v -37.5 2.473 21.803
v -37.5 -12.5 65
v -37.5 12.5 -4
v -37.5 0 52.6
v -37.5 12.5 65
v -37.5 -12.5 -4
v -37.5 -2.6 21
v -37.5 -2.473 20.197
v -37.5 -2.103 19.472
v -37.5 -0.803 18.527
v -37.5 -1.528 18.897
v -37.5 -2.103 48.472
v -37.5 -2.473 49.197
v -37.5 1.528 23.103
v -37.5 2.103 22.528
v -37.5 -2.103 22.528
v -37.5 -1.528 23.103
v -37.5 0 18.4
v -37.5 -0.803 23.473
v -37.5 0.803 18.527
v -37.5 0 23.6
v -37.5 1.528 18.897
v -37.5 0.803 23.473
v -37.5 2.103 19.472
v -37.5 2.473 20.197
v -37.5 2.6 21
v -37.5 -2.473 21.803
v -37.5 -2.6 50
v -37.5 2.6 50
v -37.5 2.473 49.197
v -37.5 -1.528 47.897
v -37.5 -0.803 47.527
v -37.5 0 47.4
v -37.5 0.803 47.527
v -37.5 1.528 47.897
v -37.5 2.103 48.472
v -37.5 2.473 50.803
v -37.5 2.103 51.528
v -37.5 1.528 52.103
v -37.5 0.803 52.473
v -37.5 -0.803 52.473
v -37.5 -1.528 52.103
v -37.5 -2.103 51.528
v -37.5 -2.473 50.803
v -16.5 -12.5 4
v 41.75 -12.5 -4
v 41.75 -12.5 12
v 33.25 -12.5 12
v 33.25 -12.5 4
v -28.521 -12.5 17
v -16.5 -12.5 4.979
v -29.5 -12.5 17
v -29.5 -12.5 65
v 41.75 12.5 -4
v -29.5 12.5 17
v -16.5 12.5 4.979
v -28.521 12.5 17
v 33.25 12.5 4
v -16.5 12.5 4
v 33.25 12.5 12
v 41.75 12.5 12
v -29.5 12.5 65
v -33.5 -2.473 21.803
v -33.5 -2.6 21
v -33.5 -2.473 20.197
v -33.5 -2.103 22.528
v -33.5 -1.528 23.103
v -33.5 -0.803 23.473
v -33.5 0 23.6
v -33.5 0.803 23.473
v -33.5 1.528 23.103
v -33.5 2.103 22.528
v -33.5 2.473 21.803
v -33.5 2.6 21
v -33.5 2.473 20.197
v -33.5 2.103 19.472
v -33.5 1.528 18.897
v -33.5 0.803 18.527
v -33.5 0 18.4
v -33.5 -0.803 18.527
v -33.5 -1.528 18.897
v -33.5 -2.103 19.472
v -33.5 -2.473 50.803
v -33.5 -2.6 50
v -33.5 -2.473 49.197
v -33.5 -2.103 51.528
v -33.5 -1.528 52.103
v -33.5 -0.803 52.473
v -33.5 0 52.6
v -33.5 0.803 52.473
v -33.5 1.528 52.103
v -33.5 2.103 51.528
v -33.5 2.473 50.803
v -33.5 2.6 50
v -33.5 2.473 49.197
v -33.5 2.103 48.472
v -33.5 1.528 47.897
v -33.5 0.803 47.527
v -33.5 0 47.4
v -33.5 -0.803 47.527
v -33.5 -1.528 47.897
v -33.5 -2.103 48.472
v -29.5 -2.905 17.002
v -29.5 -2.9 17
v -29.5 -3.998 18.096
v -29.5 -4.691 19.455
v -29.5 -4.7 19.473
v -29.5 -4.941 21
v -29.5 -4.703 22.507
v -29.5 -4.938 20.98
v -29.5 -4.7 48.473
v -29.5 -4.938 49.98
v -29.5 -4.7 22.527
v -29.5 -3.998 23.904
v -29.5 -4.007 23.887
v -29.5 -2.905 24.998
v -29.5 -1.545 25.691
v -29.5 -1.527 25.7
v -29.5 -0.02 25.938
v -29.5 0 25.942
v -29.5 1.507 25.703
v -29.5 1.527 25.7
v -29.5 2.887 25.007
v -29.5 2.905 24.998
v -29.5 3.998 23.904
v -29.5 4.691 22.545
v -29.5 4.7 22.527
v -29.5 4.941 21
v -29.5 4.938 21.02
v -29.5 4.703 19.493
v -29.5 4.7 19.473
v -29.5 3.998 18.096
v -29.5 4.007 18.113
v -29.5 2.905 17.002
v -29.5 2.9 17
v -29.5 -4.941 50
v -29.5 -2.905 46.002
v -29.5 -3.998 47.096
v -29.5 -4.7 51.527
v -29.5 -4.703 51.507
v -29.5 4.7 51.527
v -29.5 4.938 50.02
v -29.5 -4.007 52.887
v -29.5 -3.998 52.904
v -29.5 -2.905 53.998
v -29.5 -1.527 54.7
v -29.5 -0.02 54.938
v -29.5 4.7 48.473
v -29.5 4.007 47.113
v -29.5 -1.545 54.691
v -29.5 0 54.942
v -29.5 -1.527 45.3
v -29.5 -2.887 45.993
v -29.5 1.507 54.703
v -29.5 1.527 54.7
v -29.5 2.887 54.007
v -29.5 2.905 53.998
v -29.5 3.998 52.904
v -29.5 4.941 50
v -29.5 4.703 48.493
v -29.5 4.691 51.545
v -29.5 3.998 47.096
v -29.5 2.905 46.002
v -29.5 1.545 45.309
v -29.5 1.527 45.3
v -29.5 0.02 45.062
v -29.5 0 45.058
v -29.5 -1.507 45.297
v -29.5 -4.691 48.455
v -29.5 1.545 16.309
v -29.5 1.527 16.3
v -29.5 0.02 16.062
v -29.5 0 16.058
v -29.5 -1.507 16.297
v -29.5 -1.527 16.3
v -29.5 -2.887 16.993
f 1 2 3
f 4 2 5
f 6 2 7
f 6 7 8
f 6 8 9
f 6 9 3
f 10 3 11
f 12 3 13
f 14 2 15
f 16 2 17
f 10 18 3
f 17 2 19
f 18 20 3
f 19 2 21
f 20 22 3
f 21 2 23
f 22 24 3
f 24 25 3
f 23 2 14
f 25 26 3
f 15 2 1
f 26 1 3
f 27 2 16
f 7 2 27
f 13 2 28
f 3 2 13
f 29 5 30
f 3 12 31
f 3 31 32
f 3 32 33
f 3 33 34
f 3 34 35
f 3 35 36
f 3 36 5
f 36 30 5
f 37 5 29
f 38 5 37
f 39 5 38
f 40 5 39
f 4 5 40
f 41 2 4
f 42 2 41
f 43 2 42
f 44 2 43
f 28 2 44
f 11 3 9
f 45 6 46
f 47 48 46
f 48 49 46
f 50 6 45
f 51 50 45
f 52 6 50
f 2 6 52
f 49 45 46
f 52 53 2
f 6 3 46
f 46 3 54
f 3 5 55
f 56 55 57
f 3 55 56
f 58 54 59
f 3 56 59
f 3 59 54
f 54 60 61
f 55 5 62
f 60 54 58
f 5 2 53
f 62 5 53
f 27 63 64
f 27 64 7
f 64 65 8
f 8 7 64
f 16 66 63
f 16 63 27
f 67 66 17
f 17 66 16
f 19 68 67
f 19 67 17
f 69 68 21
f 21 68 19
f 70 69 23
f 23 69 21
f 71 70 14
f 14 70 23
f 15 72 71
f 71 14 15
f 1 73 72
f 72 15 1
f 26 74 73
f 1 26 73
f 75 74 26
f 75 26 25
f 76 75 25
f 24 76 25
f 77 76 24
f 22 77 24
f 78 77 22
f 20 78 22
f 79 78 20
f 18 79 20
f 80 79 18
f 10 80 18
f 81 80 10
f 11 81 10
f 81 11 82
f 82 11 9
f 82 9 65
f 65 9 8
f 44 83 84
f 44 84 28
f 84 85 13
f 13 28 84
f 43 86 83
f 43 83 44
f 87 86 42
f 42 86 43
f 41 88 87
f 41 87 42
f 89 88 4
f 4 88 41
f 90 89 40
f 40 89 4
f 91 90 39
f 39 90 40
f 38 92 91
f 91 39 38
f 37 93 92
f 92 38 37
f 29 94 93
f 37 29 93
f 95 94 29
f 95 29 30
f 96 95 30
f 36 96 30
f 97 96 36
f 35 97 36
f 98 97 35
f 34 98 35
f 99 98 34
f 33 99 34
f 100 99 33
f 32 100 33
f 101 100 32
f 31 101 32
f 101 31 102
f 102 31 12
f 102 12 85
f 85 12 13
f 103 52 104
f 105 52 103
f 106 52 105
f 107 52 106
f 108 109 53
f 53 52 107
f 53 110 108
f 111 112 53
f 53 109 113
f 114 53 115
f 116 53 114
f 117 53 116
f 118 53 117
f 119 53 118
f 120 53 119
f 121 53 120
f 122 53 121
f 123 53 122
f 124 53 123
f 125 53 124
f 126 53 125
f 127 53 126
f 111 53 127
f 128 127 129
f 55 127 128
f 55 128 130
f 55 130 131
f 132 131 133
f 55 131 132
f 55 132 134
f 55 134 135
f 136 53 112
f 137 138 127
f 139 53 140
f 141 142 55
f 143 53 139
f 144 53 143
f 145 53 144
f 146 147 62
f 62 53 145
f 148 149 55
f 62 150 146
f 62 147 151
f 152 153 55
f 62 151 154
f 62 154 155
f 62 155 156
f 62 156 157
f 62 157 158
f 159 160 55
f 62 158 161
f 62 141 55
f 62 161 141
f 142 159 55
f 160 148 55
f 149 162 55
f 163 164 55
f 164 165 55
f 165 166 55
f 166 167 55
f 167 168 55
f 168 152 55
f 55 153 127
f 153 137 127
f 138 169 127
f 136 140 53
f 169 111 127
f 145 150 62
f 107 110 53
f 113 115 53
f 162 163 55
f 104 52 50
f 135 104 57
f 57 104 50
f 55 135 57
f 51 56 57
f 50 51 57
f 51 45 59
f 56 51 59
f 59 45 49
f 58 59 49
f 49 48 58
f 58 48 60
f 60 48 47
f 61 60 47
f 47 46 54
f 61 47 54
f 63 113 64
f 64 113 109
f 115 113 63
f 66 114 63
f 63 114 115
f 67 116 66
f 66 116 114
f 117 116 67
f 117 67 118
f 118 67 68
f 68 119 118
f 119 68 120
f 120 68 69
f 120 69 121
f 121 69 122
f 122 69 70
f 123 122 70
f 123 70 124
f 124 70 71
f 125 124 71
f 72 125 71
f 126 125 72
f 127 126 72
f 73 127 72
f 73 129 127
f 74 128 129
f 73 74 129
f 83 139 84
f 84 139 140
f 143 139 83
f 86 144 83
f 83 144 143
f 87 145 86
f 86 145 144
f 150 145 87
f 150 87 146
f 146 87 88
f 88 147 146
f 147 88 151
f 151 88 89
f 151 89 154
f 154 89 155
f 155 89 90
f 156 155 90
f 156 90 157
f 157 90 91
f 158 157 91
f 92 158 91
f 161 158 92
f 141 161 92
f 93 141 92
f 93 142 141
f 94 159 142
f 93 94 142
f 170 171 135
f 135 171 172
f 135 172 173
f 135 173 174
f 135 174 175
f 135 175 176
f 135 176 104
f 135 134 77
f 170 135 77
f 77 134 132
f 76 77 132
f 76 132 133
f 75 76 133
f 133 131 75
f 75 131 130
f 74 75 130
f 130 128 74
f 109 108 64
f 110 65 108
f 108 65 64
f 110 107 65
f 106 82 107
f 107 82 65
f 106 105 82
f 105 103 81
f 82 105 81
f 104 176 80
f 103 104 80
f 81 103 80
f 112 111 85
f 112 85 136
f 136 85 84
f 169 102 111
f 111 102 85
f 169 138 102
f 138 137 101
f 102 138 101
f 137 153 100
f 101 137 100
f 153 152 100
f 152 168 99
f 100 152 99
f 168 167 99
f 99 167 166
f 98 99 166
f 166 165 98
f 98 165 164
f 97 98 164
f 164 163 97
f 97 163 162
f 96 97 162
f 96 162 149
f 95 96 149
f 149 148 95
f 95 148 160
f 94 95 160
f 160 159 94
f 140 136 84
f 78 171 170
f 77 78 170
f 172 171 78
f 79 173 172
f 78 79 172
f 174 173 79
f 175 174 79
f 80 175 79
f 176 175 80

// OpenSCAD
cube([75,25,8],center=true);
translate([75/2,0,8/2])cube([8.5,25,16],center=true);

color("red")translate([(8-75)/2,0,(61+8)/2])
difference(){
	cube([8,25,61],center=true);
	translate([-10,0,61/2-15])rotate([0,90,0])cylinder(r=5.2/2, h=200, $fn=20);
	translate([-10,0,-61/2+17])rotate([0,90,0])cylinder(r=5.2/2, h=200, $fn=20);
	translate([0,0,-61/2+17])rotate([0,90,0])cylinder(r1=5.2/2,r2=10/2, h=8.2/2, $fn=20);
	translate([0,0,61/2-15])rotate([0,90,0])cylinder(r1=5.2/2,r2=10/2, h=8.2/2, $fn=20);
}

translate([8+(13-75)/2,0,(13+8)/2])
difference(){
	cube([13,25,13],center=true);
	translate([13/2,0,13/2])rotate([0,45,0])cube([17,27,17],center=true);
}
